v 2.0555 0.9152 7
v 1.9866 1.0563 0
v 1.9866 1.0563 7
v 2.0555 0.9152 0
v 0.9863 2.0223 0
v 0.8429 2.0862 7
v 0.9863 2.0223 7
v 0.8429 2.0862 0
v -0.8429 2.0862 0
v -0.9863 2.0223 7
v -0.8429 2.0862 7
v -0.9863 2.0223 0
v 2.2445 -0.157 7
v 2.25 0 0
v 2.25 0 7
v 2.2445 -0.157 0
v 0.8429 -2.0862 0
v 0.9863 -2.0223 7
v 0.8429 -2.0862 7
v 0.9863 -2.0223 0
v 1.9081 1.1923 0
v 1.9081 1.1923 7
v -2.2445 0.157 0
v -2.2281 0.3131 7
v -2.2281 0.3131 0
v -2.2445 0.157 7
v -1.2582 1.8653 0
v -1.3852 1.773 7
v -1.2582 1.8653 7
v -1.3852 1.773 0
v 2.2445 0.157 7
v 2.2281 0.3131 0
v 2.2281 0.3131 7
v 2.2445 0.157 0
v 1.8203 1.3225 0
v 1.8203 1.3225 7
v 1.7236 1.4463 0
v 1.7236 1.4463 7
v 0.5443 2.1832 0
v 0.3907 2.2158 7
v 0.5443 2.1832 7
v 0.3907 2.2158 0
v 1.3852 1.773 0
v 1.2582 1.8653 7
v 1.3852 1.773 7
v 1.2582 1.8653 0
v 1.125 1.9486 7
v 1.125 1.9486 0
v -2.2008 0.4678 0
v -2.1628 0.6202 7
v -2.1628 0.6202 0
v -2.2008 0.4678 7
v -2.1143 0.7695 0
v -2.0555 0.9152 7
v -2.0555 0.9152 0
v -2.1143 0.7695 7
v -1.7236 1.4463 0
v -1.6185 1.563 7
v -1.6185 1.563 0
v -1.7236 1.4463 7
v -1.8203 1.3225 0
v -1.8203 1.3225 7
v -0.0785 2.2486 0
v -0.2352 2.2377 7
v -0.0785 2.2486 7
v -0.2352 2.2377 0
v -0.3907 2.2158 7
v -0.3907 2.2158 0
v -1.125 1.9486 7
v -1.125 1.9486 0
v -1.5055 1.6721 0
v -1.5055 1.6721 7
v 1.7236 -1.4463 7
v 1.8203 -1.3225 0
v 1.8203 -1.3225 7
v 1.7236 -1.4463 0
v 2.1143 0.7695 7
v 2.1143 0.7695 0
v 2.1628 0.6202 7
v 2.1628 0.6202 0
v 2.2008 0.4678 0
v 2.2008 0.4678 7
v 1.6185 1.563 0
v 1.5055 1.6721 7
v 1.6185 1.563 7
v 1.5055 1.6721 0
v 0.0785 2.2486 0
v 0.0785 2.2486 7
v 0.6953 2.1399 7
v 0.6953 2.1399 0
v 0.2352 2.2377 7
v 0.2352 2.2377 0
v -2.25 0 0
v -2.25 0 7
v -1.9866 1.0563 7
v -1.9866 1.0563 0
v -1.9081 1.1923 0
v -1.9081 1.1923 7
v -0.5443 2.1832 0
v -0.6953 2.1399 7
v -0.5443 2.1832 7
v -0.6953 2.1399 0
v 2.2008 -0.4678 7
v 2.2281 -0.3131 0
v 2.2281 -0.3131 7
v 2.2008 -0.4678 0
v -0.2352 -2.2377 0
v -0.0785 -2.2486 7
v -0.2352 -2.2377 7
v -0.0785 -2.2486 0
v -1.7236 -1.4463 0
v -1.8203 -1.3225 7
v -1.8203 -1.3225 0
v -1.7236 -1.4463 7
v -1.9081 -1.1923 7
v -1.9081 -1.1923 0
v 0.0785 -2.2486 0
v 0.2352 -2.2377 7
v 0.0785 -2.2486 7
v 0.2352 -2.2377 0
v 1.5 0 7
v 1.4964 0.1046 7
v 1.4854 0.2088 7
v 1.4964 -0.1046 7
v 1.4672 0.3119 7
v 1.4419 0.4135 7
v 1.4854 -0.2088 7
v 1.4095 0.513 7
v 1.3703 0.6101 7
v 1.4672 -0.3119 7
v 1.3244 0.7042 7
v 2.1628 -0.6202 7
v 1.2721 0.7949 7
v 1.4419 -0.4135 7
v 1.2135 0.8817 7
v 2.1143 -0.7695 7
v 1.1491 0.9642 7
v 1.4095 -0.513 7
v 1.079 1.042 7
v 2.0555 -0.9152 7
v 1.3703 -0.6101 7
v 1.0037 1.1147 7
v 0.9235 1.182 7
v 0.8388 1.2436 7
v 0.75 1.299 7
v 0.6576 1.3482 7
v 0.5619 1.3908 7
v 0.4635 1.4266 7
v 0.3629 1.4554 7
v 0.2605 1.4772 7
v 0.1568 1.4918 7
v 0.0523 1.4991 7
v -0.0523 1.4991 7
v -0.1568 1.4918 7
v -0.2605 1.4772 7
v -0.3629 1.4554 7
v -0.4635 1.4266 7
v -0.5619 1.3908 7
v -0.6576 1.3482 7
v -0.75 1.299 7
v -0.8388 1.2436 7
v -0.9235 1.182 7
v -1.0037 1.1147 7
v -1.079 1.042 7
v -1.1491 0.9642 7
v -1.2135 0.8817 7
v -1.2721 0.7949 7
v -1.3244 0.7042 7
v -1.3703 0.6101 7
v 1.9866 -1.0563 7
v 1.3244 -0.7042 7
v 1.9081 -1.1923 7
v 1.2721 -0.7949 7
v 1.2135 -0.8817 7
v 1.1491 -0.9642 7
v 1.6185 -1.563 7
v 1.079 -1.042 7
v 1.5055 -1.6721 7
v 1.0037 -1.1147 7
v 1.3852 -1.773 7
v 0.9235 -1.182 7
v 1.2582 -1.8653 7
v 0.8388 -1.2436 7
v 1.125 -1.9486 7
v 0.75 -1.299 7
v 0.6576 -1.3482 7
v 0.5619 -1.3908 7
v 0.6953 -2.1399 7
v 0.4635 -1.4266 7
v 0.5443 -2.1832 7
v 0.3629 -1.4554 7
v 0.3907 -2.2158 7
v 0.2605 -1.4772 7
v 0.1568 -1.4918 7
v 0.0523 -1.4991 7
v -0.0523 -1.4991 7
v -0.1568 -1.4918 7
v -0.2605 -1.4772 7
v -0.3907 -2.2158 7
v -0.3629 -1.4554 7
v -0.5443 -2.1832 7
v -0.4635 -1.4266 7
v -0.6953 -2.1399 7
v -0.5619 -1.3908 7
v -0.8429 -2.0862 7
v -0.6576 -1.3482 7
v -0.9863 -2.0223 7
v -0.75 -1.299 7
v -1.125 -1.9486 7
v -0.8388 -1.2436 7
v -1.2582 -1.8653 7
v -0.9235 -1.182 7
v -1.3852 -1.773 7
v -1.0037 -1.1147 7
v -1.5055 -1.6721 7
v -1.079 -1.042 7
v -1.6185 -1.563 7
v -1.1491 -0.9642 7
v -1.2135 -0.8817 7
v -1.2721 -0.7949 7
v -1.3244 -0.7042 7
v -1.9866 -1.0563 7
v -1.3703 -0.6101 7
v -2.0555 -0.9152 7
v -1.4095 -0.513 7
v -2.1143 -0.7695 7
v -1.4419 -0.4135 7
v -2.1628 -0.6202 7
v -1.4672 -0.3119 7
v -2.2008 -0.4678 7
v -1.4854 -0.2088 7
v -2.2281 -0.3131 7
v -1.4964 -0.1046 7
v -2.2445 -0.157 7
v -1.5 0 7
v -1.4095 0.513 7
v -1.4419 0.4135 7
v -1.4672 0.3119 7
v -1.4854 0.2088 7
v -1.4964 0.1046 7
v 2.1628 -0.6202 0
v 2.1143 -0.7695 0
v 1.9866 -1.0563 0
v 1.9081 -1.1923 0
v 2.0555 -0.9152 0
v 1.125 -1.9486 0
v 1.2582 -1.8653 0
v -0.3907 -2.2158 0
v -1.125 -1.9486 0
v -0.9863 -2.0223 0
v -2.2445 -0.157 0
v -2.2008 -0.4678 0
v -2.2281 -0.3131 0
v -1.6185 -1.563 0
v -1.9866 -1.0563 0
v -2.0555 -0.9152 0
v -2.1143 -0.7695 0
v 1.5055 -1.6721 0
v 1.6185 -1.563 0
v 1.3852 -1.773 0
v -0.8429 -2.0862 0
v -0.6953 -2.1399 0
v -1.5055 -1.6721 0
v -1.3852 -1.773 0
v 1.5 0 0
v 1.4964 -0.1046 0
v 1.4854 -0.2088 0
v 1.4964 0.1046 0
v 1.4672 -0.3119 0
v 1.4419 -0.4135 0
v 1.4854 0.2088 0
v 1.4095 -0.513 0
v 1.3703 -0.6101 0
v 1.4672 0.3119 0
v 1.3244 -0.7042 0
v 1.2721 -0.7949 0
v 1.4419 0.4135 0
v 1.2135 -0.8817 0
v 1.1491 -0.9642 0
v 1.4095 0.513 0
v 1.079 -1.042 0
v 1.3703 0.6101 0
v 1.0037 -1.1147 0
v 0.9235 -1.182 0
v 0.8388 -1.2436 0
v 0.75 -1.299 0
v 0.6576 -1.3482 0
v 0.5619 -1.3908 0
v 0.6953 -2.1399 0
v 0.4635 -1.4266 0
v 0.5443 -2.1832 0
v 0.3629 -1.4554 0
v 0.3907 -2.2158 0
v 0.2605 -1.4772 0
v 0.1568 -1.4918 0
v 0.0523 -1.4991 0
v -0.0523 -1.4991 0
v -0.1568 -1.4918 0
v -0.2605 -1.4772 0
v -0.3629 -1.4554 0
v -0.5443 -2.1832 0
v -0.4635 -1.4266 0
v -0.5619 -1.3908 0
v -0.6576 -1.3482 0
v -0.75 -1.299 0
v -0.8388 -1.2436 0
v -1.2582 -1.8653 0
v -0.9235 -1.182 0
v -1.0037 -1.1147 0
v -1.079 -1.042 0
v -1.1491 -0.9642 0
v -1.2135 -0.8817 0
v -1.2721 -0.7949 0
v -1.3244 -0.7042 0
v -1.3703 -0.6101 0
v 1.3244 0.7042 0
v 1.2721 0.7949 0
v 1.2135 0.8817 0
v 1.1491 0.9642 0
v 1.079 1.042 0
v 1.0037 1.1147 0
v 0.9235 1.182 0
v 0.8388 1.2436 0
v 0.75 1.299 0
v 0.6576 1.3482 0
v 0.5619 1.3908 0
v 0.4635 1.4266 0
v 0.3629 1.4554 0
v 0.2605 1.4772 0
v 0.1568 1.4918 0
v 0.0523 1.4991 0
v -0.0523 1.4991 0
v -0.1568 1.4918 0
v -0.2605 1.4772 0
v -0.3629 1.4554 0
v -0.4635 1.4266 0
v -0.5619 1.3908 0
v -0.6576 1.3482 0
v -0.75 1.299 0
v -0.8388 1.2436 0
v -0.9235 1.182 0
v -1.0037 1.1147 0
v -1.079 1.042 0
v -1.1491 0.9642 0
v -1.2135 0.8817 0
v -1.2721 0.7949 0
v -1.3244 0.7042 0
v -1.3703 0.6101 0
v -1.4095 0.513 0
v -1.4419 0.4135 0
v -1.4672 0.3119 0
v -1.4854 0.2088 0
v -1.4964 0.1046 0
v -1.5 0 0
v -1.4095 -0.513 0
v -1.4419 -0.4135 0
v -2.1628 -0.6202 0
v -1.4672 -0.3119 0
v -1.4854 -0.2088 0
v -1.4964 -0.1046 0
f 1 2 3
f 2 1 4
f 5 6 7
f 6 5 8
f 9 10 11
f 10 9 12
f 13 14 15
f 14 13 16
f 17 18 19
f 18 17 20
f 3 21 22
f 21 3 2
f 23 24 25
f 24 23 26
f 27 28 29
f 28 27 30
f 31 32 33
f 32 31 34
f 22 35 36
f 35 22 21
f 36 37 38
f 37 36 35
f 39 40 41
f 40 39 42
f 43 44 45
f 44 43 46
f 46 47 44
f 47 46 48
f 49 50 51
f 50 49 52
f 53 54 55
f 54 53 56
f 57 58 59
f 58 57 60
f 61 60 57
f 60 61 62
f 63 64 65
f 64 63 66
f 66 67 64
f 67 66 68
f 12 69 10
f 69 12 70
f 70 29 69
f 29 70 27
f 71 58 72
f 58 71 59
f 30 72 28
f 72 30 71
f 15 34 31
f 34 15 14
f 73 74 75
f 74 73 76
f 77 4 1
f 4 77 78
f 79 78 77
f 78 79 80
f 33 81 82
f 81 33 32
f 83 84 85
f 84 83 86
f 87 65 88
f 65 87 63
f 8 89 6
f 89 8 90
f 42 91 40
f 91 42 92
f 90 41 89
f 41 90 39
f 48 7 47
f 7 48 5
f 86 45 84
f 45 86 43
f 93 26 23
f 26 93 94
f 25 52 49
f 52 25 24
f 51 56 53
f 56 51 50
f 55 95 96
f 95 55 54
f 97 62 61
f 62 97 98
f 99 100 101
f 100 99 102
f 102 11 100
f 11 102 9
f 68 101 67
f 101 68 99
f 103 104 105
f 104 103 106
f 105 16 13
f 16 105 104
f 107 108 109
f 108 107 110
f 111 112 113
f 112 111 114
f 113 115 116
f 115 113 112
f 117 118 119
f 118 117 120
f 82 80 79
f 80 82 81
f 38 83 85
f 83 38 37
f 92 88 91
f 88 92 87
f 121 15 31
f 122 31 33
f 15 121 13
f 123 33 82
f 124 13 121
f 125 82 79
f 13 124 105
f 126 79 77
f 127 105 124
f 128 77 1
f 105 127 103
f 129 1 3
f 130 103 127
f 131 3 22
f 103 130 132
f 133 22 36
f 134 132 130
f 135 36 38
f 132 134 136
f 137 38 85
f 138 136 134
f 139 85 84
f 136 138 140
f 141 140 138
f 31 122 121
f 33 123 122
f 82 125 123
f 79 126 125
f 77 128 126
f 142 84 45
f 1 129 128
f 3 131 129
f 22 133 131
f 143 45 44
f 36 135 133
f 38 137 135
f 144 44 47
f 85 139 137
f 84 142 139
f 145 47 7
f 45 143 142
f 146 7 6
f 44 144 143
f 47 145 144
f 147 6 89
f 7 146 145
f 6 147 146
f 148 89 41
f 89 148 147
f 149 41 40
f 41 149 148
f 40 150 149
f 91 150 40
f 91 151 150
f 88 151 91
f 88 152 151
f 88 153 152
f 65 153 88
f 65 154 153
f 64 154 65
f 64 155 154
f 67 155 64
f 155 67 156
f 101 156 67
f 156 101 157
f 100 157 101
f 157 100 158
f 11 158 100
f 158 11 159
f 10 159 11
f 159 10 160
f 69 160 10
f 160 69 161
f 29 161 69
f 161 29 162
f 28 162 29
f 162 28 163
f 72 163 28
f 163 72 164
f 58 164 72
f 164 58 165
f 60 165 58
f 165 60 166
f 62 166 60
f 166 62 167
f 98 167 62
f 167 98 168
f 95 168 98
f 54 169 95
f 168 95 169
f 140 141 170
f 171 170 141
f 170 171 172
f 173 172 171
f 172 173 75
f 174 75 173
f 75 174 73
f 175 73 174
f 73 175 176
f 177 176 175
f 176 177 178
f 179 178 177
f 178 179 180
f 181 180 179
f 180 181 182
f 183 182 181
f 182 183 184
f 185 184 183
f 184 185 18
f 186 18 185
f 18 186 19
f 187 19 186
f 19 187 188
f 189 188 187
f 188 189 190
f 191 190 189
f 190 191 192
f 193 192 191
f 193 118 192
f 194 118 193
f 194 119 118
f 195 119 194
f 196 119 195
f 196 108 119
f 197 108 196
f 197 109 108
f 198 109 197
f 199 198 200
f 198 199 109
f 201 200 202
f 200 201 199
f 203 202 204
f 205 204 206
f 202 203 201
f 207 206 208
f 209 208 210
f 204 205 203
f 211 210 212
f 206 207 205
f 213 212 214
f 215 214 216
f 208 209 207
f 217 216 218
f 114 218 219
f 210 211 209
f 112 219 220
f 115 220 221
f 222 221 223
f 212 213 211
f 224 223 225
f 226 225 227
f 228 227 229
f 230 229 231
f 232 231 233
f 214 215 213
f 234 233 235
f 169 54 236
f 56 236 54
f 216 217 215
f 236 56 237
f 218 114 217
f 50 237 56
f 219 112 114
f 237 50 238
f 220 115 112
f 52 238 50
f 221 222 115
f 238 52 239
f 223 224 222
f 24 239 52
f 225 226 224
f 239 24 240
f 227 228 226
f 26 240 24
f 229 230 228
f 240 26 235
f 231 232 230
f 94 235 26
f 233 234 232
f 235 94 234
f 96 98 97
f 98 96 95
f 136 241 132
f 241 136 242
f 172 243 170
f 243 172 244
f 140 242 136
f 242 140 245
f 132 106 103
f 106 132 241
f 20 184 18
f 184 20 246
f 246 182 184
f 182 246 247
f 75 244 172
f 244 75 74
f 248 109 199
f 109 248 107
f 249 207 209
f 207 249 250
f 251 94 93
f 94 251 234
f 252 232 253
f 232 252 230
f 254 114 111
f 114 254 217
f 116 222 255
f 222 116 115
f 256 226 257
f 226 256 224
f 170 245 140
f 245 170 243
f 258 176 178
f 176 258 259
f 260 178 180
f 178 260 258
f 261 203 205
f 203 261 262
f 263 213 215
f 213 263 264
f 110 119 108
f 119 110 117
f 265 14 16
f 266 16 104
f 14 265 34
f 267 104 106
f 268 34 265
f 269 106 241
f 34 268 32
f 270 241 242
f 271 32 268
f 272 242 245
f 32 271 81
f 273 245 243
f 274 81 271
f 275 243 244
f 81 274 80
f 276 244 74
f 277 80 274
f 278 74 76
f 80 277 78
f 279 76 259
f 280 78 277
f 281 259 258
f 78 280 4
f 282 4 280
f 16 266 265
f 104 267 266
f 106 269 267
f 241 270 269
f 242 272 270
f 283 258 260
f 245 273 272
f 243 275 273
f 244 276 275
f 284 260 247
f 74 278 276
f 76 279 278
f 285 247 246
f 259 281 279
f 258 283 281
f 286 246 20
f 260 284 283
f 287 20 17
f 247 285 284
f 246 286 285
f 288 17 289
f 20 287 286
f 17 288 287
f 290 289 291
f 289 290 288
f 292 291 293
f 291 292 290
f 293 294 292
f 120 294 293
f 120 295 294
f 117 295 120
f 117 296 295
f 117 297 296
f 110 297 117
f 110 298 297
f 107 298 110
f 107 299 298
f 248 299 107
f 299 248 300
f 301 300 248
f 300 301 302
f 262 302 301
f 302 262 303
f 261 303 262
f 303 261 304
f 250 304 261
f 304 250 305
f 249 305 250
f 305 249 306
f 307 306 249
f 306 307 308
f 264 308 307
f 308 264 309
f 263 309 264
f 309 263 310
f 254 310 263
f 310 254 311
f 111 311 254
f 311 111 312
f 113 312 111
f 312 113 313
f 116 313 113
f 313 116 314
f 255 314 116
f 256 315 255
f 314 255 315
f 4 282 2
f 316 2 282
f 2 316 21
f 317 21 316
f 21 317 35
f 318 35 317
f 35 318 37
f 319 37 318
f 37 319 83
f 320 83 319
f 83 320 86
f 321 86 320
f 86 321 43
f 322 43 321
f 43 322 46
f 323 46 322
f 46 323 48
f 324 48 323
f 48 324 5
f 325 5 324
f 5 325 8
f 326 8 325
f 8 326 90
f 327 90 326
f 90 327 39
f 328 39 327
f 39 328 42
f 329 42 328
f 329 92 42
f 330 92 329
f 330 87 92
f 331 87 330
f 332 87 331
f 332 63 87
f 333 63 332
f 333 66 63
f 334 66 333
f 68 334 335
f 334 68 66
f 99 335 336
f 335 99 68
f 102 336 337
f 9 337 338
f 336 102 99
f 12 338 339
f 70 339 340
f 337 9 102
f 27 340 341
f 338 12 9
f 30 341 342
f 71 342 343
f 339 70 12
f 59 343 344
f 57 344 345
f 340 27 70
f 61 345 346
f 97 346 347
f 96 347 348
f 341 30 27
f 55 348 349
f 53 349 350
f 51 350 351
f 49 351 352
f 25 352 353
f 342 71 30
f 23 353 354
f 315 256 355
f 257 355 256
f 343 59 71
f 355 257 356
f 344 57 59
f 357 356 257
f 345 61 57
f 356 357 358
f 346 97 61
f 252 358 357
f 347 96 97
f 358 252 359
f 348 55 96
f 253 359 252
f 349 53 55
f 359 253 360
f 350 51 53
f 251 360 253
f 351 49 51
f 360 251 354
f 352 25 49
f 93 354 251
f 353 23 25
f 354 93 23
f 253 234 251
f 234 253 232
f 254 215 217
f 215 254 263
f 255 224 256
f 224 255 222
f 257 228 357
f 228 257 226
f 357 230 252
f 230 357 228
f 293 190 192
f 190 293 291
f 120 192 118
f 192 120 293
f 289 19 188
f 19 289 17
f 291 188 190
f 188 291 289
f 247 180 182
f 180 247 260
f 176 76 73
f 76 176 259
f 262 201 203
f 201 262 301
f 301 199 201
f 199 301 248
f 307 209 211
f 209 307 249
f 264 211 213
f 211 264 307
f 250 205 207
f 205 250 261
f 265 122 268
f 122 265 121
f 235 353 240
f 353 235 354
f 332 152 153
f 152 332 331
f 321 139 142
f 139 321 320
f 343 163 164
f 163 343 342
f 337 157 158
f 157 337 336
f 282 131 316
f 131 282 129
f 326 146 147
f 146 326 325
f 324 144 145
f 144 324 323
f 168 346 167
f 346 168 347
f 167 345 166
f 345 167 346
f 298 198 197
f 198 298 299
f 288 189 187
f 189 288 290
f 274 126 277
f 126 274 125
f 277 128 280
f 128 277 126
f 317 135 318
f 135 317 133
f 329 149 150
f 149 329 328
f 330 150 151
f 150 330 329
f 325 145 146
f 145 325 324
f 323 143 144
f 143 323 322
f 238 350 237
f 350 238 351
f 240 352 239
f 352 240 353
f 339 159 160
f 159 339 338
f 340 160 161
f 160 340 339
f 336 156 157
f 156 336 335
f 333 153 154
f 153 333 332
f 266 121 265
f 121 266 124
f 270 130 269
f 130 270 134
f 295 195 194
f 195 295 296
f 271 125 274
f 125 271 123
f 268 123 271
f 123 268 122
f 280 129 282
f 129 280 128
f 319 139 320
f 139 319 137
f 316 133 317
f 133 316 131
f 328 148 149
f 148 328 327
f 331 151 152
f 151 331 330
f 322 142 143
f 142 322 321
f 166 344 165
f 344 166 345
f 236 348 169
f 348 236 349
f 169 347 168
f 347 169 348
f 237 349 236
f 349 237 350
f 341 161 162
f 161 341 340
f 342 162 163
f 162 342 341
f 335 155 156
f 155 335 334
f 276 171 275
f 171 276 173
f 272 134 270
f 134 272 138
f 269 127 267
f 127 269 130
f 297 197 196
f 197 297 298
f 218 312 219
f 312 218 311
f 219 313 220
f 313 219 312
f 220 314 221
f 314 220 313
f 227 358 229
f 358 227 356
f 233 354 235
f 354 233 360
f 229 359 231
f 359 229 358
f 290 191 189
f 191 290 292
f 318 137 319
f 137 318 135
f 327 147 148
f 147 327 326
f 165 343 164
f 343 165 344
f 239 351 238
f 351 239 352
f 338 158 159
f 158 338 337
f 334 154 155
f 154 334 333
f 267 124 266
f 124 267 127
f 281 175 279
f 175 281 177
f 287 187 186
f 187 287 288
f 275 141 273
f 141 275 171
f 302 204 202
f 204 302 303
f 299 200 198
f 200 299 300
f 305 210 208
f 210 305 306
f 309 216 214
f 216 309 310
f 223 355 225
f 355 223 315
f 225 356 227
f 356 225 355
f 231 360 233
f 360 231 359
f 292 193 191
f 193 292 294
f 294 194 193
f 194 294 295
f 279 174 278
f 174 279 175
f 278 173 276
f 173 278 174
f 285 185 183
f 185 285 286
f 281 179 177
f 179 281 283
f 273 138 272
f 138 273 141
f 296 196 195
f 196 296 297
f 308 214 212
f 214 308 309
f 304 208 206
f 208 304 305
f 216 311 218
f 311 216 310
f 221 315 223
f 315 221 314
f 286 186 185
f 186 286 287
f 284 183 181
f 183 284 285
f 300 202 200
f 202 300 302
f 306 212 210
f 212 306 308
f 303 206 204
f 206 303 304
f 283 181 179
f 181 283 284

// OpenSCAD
$fn=90;

difference () {
    union() {
        cylinder(d=4.5, h=7);
    }
    union() {
        cylinder(d=3, h=7.1);
    }
       
}
